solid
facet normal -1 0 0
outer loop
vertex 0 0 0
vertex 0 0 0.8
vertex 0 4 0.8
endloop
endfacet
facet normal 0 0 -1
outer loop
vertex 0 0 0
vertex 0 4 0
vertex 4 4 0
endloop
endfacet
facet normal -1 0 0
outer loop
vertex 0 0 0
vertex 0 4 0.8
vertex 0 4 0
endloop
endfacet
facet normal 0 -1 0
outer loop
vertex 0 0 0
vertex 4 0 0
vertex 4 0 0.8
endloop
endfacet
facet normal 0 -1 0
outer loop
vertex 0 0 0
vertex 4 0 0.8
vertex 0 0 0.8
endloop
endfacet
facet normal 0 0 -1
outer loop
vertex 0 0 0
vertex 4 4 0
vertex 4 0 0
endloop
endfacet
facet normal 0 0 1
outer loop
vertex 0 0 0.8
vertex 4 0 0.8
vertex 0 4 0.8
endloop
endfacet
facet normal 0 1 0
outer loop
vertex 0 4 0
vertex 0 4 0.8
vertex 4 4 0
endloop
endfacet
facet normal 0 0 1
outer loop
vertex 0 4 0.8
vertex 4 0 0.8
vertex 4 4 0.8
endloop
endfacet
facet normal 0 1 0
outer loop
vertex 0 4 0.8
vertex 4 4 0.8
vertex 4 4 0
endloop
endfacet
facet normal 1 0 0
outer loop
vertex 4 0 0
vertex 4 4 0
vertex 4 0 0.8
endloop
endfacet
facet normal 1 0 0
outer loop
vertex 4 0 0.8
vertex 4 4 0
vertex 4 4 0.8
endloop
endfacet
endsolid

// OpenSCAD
/* Warning, this is a very basic generator with a lot of approximation 
input data : [WQFN, TTB, 4x4x0.8mm, 20, , A, C04-21445A]
generated by com.zoubworld.electronics.cad.model3d.Basic
Date : Sun Feb 15 10:50:49 CET 2026
*/

//body
color("black")
translate([0,0,0])
cube([4.0,4.0,0.8], center=false);
